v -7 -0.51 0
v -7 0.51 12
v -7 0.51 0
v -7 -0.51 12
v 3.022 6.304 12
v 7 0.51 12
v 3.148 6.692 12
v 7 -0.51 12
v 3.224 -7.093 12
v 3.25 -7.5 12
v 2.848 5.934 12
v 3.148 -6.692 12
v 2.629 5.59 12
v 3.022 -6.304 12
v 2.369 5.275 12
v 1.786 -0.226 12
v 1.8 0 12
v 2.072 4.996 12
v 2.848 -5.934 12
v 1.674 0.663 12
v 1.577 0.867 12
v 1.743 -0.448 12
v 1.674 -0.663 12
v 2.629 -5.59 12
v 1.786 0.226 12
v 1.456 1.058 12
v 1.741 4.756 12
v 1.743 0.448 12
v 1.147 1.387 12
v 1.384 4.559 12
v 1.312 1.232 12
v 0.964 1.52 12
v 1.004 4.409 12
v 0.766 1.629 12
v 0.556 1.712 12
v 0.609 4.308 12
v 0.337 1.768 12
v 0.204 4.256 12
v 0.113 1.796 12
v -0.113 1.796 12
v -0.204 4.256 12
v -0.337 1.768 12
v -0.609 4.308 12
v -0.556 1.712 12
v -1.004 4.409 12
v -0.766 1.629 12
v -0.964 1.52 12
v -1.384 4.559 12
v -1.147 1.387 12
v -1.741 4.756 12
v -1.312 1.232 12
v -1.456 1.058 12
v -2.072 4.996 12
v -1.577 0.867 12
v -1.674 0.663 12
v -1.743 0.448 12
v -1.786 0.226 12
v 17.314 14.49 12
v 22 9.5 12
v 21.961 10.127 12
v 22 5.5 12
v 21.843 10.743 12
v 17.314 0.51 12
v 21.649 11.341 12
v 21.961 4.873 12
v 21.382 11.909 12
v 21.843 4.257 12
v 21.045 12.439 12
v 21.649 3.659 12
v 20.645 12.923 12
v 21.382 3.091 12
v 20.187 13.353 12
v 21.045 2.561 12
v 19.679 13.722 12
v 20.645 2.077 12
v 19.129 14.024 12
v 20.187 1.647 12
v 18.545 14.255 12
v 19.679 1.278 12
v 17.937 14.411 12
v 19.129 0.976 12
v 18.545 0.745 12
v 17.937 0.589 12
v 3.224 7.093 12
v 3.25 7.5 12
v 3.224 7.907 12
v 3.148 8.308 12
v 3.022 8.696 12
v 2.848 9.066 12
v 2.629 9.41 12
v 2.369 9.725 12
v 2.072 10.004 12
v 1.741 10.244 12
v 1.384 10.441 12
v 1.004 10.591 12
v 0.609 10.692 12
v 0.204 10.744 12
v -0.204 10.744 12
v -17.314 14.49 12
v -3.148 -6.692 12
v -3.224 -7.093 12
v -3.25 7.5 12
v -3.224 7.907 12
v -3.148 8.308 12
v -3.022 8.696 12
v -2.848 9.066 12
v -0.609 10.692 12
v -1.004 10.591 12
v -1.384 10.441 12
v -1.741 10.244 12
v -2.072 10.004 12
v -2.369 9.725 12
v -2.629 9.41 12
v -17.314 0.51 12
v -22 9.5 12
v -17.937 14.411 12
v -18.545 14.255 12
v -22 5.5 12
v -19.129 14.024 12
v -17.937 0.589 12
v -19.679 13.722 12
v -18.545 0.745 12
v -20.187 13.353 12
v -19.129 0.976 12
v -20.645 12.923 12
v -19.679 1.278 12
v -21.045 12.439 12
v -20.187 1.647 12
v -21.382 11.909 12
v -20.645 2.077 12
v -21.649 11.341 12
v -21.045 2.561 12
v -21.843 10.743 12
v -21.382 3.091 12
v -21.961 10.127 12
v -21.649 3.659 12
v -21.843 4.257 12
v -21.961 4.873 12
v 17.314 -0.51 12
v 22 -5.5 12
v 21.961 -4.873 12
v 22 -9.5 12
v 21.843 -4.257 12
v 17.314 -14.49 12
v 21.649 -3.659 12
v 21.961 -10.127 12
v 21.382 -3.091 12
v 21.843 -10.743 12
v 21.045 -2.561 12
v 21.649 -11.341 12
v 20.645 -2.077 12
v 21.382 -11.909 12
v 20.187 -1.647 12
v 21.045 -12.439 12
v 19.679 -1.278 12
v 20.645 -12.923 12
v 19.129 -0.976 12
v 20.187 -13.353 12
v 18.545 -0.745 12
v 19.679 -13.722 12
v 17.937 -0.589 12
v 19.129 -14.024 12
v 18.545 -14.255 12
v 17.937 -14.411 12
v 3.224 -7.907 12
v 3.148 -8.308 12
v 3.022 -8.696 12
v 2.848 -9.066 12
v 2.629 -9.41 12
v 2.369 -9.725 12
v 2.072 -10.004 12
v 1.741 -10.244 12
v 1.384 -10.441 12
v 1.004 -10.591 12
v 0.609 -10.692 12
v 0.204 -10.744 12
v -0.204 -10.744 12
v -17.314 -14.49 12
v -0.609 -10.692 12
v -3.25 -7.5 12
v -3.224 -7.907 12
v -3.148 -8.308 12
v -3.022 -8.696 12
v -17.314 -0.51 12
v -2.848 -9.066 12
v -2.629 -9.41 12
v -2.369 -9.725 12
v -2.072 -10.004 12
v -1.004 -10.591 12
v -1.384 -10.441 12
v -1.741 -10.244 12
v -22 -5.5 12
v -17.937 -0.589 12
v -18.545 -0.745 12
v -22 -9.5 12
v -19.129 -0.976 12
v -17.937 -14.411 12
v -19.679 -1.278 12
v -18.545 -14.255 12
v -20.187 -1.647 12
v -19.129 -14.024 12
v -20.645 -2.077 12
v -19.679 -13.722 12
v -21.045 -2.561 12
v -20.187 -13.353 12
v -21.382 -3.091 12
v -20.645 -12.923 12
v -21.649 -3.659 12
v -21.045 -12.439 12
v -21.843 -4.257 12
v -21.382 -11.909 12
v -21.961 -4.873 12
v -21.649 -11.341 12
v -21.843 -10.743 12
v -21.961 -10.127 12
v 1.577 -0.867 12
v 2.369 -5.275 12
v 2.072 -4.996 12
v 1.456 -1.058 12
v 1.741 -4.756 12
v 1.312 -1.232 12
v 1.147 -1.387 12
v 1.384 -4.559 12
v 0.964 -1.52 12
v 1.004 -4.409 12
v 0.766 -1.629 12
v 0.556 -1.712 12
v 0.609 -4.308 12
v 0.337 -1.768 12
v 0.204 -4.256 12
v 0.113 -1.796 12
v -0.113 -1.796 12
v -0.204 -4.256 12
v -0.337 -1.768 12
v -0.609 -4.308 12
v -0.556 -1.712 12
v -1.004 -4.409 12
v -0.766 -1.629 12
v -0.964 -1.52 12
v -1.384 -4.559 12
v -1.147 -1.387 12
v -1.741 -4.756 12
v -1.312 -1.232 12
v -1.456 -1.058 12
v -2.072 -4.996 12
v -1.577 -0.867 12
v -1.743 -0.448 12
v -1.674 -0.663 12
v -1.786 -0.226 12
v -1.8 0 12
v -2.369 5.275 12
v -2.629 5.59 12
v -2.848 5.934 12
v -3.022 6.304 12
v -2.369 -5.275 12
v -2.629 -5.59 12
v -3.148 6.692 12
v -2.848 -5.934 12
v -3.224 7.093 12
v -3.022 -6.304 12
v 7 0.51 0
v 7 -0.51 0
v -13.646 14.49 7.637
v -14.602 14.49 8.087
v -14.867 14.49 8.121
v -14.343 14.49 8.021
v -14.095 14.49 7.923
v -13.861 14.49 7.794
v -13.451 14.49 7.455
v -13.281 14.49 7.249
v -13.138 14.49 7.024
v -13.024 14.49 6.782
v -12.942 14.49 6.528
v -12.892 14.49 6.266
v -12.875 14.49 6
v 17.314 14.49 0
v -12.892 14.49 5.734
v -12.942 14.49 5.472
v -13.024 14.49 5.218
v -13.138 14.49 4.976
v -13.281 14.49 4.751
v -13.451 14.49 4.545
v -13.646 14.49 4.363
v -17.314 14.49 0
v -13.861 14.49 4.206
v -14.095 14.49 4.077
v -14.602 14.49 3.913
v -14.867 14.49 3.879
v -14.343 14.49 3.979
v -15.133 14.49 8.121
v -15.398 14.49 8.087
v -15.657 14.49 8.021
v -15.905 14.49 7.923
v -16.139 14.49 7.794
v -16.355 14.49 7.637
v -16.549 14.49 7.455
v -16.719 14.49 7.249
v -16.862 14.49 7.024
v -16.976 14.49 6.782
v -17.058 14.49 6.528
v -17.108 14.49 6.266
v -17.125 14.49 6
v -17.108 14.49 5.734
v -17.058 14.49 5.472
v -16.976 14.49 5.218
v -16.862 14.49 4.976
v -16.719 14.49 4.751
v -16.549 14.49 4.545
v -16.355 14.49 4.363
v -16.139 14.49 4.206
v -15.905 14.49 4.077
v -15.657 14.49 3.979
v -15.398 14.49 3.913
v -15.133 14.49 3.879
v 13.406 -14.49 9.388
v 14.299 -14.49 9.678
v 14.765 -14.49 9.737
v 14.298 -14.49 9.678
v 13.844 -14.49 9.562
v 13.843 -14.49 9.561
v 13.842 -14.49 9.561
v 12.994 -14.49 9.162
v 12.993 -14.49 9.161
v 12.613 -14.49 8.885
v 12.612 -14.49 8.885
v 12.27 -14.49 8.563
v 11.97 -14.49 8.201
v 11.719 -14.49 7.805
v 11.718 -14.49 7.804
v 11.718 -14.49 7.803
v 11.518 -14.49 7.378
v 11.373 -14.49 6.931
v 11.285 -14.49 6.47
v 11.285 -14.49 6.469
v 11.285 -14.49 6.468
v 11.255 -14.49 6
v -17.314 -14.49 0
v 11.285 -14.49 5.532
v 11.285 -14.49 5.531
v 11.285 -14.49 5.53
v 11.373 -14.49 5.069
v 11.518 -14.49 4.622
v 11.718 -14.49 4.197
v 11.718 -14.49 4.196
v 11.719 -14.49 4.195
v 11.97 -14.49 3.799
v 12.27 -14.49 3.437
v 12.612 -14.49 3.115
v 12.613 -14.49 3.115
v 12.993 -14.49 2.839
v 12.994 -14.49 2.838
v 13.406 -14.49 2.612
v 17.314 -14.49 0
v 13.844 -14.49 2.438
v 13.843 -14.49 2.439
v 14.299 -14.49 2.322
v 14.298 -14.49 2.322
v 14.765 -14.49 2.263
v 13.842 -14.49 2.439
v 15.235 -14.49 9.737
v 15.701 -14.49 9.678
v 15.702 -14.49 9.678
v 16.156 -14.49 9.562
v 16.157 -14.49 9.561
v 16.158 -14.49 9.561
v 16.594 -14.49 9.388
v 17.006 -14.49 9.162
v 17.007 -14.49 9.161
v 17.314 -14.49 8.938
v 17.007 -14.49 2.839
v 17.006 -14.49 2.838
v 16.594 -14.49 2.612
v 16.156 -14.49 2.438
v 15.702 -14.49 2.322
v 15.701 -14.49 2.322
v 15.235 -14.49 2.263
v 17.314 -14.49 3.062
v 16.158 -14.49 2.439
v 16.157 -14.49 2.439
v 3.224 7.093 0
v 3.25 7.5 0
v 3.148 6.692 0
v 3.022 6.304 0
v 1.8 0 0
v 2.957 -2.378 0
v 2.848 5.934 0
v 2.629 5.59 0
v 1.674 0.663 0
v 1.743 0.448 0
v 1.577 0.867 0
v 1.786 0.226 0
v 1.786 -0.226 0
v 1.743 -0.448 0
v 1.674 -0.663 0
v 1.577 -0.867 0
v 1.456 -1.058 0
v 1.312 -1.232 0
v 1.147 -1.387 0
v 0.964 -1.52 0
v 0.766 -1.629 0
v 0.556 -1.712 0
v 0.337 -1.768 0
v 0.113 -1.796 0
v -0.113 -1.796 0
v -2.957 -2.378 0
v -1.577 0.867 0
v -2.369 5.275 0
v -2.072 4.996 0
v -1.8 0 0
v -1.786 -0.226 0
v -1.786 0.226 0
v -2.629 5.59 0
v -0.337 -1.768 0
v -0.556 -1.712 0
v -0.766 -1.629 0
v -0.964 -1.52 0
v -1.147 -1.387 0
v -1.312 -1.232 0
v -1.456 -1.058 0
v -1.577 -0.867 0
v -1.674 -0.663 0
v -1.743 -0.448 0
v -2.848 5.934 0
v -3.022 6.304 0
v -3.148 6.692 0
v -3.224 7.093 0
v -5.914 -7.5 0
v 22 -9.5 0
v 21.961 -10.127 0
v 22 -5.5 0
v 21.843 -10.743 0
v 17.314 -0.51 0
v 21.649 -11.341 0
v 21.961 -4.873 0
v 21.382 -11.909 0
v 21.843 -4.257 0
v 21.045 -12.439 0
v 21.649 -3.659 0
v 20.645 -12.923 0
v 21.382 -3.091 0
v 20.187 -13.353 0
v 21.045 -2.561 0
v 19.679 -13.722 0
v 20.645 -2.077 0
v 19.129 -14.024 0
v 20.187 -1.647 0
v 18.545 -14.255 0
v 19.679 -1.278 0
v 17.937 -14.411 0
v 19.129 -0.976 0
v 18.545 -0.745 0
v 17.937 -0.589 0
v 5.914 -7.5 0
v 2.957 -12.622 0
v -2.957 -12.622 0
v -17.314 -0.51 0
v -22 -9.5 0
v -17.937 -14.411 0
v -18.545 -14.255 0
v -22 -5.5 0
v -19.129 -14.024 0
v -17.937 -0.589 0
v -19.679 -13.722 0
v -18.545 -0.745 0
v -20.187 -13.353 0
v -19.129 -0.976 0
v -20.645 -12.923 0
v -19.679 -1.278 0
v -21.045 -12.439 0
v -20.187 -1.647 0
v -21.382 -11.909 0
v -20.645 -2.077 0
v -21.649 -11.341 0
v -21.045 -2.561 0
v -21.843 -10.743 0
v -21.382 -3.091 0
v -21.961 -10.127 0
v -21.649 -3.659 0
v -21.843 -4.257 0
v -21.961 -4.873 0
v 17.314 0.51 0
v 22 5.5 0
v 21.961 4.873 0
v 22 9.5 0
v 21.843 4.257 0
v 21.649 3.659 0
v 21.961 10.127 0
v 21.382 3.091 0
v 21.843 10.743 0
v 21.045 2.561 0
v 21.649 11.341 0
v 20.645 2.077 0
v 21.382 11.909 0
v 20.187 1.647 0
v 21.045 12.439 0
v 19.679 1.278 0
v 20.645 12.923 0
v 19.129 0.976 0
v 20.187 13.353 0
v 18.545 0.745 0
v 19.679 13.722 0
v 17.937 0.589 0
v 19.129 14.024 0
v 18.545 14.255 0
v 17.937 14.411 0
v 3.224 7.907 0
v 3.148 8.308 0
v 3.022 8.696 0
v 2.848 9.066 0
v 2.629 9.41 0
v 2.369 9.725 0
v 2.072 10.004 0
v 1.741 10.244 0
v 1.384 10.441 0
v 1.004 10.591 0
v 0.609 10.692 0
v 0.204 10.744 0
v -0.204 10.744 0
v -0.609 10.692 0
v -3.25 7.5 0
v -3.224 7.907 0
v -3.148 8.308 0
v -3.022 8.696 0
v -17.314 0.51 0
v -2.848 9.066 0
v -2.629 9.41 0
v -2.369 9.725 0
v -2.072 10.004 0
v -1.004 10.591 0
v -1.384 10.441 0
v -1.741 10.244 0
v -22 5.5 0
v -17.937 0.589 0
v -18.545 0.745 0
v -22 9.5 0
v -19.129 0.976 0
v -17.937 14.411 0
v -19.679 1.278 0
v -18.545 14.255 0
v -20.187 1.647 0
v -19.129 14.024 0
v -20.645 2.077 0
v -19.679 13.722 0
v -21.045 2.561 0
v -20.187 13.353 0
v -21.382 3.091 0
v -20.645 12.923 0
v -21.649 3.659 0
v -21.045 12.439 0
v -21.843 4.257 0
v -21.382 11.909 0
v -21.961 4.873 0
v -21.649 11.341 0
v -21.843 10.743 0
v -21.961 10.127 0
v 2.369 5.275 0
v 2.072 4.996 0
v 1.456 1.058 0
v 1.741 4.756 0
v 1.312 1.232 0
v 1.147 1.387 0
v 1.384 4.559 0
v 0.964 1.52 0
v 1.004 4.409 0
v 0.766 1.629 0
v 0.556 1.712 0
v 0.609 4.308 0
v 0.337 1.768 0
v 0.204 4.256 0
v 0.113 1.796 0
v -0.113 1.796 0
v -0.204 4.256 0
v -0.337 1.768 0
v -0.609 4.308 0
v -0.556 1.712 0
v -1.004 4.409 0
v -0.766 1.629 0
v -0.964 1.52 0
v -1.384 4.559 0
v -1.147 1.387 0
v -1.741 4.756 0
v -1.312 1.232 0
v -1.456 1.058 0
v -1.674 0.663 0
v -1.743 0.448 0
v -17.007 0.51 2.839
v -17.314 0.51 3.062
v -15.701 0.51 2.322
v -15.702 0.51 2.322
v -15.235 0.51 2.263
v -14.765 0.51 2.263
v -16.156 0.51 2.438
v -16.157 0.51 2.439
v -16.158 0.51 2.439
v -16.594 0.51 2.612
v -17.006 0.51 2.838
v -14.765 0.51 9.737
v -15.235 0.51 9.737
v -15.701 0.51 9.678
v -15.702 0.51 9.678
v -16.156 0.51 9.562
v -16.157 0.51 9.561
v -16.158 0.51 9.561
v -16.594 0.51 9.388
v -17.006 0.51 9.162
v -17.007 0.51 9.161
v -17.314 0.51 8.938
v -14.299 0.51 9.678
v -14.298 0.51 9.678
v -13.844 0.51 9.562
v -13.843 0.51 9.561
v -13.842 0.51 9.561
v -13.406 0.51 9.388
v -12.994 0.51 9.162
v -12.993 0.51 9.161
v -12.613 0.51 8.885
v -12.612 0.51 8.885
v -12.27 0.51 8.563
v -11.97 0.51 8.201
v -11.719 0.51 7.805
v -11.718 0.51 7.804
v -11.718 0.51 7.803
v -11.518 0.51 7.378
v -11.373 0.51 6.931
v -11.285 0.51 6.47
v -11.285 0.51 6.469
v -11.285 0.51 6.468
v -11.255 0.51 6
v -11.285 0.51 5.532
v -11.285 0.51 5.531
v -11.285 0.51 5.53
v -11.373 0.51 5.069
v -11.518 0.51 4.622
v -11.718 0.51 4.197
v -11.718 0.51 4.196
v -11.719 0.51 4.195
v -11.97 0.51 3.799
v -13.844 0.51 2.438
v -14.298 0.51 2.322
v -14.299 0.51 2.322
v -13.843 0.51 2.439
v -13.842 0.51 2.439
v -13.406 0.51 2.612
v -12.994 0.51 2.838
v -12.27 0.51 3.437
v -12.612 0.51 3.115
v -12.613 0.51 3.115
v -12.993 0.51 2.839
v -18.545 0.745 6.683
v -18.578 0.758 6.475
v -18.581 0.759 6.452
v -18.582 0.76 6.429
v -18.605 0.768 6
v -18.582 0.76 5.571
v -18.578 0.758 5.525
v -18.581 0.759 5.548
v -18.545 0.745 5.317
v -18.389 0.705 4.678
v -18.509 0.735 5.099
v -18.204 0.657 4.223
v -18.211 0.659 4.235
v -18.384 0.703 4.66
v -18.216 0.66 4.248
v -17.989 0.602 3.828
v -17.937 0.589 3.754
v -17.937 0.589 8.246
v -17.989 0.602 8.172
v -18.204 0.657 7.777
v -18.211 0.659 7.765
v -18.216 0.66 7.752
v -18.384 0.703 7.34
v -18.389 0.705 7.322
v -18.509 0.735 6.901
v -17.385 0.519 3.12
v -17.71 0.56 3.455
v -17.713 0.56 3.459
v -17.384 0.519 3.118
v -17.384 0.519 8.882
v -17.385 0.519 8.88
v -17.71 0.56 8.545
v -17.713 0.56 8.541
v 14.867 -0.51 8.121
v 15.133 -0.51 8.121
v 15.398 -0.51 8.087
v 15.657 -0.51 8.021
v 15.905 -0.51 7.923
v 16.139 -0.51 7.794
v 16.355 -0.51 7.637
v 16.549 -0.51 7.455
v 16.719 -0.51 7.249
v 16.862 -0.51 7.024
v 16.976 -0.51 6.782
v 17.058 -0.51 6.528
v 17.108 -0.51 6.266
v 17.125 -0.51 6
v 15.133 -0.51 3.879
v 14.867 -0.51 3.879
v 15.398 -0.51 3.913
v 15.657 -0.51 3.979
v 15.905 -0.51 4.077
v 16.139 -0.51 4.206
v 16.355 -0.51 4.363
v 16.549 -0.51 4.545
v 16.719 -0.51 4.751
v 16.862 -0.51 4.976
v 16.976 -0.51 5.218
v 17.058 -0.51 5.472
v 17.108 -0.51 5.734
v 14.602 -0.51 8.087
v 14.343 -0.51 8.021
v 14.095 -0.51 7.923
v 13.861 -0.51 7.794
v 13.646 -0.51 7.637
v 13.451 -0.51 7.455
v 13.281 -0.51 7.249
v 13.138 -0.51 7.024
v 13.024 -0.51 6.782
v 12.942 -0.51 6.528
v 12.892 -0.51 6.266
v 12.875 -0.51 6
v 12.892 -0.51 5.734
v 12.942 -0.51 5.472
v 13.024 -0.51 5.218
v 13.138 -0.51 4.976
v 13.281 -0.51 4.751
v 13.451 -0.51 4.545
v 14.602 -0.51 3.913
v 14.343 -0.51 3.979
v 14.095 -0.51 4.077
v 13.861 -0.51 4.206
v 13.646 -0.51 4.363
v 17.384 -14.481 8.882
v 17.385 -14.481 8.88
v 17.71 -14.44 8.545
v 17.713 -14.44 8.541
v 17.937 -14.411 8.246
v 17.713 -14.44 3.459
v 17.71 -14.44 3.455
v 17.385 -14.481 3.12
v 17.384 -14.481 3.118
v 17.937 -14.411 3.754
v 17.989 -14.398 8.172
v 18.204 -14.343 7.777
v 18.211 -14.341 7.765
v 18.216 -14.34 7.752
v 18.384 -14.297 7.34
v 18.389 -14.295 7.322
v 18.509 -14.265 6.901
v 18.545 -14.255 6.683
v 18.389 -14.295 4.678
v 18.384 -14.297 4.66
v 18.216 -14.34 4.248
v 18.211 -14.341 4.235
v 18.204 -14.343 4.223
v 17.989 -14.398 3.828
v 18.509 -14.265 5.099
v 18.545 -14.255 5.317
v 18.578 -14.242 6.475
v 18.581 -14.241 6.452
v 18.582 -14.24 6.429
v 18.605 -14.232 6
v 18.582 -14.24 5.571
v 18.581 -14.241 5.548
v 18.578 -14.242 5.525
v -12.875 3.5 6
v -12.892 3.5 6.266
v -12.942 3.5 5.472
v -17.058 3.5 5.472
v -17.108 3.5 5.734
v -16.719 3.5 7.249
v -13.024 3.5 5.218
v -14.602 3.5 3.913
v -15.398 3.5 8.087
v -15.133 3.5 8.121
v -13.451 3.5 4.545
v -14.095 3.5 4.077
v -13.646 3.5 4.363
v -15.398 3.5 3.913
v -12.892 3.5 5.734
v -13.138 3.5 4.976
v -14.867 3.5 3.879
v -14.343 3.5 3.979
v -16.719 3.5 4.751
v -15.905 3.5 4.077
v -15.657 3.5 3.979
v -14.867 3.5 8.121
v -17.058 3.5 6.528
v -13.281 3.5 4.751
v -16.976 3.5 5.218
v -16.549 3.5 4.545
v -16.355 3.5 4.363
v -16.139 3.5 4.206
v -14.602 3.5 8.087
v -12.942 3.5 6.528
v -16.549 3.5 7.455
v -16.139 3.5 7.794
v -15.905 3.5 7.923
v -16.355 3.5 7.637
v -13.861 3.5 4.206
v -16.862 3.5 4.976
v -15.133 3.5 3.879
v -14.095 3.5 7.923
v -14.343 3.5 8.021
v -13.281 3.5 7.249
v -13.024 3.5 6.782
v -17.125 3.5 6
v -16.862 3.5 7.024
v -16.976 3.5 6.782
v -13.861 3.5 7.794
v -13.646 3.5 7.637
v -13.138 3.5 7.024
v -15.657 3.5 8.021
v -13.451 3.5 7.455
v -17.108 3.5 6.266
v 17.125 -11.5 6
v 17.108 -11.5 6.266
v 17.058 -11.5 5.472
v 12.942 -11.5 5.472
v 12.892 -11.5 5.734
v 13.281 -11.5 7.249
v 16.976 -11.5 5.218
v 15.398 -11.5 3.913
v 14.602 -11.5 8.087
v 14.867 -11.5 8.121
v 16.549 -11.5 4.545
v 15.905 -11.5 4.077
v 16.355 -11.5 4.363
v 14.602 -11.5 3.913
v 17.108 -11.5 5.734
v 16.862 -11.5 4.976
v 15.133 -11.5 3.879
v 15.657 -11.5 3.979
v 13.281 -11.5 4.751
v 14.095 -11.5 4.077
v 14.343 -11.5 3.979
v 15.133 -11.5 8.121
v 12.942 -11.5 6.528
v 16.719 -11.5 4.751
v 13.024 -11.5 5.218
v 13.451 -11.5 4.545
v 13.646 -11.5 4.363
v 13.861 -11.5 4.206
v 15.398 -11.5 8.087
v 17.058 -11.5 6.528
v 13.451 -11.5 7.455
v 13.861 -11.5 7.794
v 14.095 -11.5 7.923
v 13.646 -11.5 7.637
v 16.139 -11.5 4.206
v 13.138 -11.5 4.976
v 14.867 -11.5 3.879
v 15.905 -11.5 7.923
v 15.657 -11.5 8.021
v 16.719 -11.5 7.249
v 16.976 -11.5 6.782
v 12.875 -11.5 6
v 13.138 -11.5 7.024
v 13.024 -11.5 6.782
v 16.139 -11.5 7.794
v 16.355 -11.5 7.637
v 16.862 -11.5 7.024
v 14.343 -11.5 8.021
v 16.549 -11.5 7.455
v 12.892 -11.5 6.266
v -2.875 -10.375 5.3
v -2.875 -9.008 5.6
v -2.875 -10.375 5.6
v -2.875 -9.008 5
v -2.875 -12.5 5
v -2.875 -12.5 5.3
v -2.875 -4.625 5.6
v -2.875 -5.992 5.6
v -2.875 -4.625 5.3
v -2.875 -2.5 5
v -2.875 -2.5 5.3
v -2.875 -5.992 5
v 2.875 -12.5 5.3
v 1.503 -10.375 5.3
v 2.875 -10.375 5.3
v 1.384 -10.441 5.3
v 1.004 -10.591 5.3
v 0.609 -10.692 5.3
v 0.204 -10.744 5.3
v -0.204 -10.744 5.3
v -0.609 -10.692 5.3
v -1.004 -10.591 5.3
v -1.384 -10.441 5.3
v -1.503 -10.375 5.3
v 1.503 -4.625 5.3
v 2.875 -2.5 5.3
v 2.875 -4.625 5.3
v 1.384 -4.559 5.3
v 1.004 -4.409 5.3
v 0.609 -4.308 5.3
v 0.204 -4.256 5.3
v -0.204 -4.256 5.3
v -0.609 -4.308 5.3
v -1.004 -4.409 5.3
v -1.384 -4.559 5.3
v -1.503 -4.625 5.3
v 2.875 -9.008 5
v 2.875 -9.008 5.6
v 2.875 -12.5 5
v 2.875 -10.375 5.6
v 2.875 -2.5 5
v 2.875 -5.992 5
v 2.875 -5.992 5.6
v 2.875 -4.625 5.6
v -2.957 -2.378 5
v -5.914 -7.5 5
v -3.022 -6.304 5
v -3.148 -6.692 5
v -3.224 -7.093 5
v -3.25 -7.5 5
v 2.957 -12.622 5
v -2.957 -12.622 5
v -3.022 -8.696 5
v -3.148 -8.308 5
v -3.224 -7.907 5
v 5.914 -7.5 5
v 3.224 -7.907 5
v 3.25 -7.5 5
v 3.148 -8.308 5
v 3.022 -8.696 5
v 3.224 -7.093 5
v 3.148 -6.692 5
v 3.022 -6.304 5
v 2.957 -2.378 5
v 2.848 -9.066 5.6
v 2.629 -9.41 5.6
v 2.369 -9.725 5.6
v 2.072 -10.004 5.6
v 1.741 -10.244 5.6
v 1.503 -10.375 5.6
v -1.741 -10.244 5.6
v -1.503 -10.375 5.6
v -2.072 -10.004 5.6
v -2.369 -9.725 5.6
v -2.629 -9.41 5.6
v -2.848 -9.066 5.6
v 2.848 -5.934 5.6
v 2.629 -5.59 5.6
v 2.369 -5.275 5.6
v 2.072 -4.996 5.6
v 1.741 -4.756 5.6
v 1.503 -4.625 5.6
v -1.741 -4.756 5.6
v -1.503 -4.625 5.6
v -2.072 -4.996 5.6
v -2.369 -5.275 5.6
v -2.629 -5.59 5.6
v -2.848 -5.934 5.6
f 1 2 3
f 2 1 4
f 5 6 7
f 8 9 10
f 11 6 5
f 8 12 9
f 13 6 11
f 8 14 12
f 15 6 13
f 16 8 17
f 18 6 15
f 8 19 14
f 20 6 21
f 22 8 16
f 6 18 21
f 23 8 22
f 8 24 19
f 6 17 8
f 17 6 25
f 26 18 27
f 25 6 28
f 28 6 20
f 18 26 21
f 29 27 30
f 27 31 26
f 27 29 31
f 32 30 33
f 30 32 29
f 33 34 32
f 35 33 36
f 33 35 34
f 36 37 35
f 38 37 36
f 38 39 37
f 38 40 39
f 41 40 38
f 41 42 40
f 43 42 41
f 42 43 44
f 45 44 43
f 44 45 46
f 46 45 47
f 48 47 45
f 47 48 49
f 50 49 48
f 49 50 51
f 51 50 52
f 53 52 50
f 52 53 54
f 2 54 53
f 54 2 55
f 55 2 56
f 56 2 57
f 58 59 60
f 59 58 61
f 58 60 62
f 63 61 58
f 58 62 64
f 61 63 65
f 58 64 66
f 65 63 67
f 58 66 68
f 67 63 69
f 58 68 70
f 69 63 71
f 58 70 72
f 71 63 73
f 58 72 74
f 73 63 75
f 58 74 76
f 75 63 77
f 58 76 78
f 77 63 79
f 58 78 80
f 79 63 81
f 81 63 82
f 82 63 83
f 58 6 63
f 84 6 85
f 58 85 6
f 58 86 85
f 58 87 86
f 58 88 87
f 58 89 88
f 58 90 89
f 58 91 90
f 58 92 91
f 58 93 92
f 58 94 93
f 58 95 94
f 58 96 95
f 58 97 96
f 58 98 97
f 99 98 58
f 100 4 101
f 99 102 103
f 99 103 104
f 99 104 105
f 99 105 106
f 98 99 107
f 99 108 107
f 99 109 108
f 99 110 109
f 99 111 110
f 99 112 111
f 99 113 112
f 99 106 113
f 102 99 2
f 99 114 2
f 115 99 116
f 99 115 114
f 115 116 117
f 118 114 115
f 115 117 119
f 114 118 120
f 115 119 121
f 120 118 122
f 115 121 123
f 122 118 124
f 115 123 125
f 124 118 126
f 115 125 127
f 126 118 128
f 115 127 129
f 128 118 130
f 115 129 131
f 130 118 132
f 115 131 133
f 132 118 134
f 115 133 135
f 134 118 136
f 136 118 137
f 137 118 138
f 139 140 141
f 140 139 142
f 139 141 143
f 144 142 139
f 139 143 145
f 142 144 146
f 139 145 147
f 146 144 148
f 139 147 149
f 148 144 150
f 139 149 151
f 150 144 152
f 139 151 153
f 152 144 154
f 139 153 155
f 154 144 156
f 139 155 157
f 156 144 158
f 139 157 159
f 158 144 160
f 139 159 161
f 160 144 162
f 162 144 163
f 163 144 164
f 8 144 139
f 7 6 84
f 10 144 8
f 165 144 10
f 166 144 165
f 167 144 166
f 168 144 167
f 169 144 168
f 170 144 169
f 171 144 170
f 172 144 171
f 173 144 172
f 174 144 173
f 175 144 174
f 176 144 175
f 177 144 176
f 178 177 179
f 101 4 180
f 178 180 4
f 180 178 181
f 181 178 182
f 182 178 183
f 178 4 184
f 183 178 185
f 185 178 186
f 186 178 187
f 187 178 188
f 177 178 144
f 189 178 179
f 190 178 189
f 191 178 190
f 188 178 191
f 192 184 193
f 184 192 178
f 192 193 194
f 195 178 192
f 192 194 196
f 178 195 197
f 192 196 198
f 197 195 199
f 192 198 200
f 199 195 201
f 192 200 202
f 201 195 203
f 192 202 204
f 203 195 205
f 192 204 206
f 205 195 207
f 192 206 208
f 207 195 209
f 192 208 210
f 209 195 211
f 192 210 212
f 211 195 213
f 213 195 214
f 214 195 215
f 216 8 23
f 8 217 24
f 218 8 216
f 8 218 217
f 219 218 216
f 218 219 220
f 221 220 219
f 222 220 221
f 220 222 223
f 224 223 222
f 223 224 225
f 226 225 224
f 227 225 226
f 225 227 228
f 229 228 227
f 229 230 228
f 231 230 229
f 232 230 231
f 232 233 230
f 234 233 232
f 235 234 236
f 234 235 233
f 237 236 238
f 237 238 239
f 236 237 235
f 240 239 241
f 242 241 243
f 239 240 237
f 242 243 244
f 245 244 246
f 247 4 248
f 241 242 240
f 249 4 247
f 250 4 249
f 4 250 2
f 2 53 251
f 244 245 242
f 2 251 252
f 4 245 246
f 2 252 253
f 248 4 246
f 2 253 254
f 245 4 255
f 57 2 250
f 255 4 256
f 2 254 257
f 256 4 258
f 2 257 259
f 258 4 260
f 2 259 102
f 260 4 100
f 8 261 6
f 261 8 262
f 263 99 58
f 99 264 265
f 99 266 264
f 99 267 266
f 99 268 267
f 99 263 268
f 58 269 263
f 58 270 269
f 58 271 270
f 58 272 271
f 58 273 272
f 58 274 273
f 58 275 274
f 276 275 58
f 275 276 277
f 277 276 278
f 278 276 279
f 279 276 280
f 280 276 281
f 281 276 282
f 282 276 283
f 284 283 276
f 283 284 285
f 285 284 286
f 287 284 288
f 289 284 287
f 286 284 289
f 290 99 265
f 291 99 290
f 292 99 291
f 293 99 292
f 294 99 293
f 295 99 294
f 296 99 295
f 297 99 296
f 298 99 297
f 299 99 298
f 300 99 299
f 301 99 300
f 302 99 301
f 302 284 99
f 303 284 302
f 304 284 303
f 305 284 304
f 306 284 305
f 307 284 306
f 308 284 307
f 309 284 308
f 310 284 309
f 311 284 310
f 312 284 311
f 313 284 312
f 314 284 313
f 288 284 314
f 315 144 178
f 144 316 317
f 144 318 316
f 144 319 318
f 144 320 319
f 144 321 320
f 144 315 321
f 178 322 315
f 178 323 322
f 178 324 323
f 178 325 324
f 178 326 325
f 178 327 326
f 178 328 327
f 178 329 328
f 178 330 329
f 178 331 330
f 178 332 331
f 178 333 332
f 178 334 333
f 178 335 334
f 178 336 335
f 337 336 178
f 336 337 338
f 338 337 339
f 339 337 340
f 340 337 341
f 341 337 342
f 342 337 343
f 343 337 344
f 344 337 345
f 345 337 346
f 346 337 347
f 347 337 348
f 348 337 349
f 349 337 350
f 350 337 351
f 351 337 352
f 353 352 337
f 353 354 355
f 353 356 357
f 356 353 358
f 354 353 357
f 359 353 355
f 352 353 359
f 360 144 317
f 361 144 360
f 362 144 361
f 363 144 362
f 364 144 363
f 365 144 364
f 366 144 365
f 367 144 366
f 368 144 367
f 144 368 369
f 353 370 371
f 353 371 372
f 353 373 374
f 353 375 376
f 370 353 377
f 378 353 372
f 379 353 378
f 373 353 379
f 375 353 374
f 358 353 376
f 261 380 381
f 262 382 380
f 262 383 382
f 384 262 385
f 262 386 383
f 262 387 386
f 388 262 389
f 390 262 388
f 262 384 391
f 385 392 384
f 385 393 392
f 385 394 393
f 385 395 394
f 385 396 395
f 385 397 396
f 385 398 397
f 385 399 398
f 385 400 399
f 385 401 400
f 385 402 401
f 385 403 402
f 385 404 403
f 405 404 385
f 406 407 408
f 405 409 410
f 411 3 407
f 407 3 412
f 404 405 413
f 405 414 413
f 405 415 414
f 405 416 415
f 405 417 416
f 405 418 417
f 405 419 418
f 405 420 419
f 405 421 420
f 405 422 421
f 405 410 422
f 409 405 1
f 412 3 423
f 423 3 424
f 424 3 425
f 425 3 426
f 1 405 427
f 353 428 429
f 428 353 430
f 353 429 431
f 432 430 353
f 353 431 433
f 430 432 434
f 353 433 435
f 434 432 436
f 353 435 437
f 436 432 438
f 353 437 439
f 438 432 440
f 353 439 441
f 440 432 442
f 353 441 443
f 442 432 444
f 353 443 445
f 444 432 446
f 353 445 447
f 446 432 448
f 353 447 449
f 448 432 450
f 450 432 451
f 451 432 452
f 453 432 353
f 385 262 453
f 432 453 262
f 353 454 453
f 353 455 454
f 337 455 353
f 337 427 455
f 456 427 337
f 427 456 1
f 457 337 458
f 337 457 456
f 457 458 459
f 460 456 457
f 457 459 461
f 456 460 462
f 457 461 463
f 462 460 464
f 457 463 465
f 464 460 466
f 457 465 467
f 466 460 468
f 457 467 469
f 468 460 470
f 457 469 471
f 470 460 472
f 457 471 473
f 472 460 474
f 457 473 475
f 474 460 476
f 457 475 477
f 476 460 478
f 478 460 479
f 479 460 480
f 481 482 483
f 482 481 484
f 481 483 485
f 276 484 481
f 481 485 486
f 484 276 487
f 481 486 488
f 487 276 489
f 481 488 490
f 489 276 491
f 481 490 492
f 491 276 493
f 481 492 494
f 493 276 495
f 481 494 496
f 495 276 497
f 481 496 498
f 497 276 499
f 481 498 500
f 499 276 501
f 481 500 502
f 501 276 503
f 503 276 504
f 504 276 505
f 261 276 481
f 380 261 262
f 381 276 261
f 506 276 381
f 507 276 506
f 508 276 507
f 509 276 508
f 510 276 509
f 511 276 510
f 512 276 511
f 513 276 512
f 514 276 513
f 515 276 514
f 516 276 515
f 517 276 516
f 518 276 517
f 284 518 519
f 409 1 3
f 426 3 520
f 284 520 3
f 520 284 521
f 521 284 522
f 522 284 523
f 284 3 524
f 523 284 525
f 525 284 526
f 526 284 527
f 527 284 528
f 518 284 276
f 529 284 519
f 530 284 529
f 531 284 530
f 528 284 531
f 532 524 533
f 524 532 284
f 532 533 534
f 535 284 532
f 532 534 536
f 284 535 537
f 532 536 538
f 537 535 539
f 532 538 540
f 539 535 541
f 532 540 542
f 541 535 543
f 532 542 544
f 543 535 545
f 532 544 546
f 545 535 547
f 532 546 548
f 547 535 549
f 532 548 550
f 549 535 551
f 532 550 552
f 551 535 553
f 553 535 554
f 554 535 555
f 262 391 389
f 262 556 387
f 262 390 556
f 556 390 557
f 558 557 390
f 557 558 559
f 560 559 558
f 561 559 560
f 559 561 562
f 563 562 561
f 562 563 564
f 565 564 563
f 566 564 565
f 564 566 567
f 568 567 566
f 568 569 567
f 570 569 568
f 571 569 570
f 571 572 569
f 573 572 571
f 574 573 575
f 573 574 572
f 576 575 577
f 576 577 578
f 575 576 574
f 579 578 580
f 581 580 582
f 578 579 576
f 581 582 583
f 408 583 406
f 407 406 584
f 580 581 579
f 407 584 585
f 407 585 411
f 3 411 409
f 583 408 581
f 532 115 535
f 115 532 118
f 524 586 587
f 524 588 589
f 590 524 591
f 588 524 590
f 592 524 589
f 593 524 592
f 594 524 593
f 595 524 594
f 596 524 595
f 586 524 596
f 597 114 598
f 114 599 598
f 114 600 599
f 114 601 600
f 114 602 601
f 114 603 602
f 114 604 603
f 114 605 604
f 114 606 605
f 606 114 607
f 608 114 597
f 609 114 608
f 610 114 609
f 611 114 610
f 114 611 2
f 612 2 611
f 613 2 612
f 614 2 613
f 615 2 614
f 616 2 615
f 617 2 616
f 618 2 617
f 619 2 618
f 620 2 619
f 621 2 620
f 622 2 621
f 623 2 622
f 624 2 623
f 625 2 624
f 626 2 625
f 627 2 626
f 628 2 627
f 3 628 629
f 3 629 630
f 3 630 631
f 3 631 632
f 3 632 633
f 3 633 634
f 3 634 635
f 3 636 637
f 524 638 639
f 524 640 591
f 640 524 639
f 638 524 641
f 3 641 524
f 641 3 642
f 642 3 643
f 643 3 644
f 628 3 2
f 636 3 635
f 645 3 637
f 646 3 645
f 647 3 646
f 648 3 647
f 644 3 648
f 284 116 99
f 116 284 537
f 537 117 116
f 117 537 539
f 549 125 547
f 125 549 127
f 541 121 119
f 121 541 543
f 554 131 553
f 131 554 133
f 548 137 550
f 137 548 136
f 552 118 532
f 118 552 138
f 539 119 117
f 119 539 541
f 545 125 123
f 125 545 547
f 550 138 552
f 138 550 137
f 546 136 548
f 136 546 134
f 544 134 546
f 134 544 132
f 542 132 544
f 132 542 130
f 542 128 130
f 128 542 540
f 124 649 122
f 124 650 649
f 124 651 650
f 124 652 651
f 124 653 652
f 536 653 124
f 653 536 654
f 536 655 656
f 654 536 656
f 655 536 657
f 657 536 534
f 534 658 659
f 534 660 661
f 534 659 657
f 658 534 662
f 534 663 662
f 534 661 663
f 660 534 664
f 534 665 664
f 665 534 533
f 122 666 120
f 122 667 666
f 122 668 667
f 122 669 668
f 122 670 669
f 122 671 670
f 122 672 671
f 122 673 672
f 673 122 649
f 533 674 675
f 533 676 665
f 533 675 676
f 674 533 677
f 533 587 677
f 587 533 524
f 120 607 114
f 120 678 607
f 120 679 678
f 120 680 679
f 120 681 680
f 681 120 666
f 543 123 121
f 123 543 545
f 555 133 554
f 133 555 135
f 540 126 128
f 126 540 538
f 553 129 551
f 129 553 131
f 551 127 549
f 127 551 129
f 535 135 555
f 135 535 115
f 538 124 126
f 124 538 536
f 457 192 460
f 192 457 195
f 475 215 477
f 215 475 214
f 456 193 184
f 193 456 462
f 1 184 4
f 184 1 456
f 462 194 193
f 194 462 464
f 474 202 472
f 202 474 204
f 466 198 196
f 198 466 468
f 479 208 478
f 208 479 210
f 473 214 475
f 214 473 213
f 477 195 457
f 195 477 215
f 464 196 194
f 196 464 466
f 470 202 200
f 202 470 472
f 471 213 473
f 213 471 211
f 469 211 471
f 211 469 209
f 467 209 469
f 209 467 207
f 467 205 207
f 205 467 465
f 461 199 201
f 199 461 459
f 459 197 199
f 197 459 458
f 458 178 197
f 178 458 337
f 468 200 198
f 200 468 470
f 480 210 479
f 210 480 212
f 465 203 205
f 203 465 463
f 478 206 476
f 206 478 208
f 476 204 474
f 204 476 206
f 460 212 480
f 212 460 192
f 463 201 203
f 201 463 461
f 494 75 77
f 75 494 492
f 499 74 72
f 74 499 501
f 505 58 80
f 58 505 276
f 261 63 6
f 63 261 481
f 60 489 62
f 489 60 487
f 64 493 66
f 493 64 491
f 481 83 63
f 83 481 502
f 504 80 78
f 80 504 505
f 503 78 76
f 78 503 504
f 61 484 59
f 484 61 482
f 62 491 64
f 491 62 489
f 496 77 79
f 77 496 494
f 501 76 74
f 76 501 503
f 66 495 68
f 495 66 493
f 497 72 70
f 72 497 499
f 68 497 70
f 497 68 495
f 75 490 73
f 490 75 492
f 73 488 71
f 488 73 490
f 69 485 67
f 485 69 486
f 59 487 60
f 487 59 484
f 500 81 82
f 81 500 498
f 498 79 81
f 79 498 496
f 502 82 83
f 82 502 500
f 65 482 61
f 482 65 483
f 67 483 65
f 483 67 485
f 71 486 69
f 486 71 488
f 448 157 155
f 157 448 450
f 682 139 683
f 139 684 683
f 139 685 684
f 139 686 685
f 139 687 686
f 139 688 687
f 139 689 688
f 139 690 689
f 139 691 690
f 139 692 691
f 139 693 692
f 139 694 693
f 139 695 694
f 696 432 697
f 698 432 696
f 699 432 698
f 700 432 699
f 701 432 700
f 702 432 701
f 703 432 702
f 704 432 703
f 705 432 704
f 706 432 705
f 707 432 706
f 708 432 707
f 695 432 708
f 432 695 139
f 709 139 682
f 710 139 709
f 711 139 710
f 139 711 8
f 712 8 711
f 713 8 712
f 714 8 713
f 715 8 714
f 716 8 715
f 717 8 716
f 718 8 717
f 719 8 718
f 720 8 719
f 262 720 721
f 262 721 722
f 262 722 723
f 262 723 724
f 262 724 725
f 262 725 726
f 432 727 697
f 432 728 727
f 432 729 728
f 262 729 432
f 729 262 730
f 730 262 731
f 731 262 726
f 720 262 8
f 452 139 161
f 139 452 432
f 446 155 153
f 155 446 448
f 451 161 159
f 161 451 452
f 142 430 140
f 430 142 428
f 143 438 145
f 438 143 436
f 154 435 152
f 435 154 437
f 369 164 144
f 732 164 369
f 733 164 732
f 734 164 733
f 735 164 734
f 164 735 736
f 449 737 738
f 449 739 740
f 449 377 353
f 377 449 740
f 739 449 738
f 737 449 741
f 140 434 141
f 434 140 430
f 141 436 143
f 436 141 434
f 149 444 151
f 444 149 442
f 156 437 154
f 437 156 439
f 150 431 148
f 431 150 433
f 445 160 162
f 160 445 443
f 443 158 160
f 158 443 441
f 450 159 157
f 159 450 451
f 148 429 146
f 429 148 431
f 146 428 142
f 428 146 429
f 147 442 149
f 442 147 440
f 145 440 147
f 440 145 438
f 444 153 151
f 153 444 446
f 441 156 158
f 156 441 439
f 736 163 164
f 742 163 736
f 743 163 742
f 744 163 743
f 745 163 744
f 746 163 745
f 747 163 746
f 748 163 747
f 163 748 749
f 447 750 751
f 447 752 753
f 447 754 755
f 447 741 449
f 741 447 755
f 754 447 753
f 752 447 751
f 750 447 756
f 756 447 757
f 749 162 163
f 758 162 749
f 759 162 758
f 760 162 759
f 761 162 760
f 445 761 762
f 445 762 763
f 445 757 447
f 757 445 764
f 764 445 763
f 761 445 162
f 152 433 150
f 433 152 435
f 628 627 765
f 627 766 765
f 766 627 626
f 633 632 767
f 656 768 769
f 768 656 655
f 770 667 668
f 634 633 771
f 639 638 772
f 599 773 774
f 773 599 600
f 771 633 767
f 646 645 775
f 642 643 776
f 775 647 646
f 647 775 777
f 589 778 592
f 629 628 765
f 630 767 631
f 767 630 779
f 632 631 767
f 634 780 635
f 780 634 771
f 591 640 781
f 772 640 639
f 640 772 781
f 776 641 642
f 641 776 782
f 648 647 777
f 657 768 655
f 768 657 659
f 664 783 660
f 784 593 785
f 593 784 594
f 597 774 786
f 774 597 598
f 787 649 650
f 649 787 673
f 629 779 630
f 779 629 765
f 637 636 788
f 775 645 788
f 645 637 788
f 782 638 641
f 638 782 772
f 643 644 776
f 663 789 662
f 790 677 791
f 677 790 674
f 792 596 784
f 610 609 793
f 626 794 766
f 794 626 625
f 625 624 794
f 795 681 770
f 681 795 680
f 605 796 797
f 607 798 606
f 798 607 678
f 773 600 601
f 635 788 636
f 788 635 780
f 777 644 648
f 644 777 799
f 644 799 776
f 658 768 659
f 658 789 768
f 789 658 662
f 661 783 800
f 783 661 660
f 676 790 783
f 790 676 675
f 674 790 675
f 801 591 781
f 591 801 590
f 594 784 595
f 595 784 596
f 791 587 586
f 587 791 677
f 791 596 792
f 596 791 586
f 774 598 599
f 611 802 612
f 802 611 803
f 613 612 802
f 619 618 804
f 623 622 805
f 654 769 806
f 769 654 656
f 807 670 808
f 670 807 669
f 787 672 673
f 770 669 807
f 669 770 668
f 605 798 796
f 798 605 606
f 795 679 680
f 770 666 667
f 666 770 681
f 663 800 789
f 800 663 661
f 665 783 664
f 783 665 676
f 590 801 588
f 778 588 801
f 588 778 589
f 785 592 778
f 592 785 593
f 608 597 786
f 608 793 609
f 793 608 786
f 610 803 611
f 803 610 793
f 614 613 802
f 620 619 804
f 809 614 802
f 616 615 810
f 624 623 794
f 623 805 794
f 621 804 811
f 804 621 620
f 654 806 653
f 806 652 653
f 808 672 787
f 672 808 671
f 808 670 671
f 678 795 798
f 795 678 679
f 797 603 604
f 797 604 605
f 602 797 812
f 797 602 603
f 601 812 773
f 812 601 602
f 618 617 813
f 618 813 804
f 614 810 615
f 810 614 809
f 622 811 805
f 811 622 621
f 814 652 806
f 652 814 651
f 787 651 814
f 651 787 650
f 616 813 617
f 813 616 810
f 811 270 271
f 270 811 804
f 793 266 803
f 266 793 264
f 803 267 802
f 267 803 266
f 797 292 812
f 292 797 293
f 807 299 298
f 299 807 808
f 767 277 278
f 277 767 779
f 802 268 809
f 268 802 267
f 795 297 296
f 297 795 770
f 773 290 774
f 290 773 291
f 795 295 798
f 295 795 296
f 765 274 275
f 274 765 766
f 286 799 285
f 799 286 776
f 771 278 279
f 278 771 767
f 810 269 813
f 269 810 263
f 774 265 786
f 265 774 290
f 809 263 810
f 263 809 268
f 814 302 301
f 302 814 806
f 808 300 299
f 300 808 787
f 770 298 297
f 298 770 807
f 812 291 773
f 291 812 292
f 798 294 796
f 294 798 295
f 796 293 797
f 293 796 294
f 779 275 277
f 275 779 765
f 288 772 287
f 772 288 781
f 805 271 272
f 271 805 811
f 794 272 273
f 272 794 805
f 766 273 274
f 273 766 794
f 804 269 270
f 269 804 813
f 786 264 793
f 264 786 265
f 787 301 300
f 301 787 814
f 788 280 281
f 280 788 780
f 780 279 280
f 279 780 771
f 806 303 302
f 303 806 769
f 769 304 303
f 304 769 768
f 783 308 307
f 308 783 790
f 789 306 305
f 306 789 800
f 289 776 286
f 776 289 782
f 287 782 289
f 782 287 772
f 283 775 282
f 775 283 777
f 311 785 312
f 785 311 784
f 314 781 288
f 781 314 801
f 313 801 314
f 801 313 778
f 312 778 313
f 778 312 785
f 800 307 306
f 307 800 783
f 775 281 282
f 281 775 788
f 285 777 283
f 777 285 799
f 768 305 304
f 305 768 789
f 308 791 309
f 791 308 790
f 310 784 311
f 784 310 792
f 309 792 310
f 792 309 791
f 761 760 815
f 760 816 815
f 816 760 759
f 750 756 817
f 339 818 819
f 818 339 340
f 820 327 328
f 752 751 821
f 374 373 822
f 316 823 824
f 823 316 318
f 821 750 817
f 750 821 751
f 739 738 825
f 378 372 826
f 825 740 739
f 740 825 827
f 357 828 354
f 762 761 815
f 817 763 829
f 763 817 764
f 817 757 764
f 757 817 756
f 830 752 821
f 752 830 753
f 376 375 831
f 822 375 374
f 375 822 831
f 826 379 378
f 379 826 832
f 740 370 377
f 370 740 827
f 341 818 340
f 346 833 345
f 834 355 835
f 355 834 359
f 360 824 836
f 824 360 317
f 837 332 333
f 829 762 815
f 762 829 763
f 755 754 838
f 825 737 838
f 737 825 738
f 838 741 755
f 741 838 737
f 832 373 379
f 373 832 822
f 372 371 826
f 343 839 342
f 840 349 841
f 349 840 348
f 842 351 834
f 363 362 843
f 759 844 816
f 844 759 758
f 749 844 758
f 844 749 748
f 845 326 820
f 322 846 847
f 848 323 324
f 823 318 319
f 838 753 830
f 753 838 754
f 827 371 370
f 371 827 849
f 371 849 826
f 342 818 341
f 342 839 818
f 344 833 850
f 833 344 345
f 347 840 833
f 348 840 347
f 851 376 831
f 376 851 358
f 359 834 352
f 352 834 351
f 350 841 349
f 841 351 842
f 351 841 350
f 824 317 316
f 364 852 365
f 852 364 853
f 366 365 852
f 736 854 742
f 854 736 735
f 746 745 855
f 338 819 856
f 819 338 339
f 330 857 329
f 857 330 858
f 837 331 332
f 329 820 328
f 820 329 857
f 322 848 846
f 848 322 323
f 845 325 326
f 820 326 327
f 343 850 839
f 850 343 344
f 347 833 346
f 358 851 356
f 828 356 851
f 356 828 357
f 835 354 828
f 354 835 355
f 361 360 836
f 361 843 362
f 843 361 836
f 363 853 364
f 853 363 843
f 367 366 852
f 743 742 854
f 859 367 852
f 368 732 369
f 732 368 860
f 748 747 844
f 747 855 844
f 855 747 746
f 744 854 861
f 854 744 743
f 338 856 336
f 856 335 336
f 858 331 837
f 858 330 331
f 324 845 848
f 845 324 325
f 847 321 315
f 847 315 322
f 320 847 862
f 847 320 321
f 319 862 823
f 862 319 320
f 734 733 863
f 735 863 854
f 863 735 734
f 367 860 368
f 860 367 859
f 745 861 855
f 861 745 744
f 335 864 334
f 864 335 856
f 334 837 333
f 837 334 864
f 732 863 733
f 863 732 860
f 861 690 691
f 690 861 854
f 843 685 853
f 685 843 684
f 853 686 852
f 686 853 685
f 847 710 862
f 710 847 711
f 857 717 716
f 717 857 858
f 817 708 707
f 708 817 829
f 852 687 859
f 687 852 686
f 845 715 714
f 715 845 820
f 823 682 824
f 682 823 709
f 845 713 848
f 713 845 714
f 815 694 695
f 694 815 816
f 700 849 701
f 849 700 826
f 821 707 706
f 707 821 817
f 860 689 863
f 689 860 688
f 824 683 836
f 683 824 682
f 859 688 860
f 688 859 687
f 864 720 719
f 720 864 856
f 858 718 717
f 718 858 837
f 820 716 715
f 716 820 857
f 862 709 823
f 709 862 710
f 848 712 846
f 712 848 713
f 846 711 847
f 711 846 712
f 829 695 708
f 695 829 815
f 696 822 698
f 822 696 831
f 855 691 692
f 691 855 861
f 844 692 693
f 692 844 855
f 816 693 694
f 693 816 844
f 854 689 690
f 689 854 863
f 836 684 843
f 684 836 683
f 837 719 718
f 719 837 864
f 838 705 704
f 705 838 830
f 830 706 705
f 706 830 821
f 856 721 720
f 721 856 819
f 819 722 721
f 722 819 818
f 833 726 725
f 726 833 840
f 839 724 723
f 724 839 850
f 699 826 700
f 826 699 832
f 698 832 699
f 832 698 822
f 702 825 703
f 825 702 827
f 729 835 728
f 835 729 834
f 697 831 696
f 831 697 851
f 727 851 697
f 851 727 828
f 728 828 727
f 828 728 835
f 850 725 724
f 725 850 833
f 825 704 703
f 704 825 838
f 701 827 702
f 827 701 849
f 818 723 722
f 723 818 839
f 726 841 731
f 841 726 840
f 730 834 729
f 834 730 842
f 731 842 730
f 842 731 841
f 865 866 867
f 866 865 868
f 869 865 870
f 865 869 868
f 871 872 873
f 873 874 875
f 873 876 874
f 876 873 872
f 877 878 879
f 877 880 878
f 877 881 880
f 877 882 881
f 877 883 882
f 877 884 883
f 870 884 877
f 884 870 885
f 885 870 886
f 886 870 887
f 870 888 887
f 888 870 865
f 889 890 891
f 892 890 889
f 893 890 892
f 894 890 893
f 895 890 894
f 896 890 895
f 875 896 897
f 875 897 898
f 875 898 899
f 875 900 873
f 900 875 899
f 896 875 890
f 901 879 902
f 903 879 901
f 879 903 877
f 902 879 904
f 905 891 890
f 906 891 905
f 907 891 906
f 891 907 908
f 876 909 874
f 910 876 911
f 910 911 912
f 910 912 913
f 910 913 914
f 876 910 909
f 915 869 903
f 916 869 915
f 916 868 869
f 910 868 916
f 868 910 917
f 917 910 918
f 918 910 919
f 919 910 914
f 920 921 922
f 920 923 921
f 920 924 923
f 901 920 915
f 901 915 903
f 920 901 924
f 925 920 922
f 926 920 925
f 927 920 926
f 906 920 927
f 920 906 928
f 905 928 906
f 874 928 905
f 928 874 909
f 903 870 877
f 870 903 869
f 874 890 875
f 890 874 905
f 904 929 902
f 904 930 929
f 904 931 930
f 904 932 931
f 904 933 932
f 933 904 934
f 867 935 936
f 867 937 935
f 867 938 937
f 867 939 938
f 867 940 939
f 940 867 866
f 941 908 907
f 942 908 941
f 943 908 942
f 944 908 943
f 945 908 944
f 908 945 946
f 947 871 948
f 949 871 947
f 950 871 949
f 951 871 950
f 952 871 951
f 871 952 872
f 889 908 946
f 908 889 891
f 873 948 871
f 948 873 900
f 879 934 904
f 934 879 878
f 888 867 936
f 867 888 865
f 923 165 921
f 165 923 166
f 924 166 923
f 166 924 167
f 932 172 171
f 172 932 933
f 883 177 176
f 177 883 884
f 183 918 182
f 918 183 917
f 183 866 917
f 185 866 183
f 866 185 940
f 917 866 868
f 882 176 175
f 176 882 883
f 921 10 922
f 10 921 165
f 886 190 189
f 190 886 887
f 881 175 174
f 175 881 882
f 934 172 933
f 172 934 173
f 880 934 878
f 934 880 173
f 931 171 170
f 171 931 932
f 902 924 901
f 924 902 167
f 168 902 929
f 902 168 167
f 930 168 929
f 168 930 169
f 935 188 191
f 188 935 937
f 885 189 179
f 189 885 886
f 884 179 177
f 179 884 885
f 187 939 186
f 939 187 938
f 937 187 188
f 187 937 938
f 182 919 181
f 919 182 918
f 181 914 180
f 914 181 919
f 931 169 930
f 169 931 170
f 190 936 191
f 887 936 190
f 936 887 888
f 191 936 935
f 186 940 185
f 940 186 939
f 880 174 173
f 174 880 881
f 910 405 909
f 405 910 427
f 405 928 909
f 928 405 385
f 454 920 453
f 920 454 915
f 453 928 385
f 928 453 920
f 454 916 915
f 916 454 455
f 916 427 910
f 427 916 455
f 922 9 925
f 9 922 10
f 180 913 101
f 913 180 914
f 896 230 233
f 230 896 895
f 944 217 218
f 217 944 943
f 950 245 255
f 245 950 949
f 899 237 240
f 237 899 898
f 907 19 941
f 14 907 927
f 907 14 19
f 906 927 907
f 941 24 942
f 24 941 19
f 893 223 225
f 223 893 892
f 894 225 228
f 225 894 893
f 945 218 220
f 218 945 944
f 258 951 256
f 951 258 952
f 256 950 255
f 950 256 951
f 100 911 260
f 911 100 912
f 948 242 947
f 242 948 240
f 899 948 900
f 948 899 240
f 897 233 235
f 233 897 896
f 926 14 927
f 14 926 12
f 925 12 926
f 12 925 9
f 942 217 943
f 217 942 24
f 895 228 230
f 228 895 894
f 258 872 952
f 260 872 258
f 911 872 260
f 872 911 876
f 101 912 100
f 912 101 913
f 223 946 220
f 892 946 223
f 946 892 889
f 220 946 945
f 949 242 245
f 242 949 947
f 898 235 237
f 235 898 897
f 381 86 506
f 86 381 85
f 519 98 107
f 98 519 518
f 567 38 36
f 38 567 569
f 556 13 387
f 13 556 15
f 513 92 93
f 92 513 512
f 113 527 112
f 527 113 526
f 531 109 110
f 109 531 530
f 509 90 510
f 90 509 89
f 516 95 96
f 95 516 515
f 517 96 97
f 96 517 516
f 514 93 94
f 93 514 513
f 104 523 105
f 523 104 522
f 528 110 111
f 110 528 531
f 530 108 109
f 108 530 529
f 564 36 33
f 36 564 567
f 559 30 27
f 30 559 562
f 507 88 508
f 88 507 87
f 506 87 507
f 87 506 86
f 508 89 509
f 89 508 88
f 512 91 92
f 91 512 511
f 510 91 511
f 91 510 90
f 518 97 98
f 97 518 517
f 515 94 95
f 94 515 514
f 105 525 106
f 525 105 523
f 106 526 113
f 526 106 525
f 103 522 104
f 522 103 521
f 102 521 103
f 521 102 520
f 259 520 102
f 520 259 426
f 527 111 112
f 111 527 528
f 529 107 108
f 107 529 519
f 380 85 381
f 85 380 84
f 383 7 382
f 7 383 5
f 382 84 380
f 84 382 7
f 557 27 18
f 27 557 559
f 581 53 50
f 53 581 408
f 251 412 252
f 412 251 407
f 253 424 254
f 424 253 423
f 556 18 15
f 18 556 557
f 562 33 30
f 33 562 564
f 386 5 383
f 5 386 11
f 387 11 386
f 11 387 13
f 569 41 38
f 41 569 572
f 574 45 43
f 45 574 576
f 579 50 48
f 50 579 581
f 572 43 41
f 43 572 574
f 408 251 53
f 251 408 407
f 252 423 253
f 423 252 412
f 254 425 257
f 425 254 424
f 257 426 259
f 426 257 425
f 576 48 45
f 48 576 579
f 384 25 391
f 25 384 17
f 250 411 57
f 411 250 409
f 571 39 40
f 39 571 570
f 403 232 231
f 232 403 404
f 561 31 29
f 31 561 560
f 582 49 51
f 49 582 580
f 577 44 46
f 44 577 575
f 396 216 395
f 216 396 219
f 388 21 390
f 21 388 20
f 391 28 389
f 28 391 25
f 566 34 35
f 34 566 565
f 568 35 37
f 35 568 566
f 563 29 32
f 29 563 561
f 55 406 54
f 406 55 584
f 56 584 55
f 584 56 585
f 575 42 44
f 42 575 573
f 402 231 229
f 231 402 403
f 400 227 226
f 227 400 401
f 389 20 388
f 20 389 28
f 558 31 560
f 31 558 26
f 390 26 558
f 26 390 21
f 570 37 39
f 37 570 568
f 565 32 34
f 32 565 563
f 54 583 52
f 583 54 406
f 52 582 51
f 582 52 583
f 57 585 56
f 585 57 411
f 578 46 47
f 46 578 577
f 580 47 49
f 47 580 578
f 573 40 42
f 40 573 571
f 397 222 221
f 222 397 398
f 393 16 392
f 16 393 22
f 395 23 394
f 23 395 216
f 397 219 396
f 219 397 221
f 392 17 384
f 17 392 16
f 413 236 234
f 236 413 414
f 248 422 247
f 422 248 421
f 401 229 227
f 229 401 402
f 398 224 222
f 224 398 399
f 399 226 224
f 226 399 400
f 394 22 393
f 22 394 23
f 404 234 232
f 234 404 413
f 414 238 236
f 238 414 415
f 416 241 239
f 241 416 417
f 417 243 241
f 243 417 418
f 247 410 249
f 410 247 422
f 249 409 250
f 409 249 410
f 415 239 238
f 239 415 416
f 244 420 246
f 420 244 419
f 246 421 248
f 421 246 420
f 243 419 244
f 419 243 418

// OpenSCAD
$fn = 50;


difference() {
	union() {
		hull() {
			translate(v = [-2.0000000000, 9.5000000000, 0]) {
				cylinder(h = 12, r = 5);
			}
			translate(v = [2.0000000000, 9.5000000000, 0]) {
				cylinder(h = 12, r = 5);
			}
			translate(v = [-2.0000000000, -9.5000000000, 0]) {
				cylinder(h = 12, r = 5);
			}
			translate(v = [2.0000000000, -9.5000000000, 0]) {
				cylinder(h = 12, r = 5);
			}
		}
		translate(v = [-7.5000000000, 7.5000000000, 0]) {
			hull() {
				translate(v = [-9.5000000000, 2.0000000000, 0]) {
					cylinder(h = 12, r = 5);
				}
				translate(v = [9.5000000000, 2.0000000000, 0]) {
					cylinder(h = 12, r = 5);
				}
				translate(v = [-9.5000000000, -2.0000000000, 0]) {
					cylinder(h = 12, r = 5);
				}
				translate(v = [9.5000000000, -2.0000000000, 0]) {
					cylinder(h = 12, r = 5);
				}
			}
		}
		translate(v = [-7.5000000000, -7.5000000000, 0]) {
			hull() {
				translate(v = [-9.5000000000, 2.0000000000, 0]) {
					cylinder(h = 12, r = 5);
				}
				translate(v = [9.5000000000, 2.0000000000, 0]) {
					cylinder(h = 12, r = 5);
				}
				translate(v = [-9.5000000000, -2.0000000000, 0]) {
					cylinder(h = 12, r = 5);
				}
				translate(v = [9.5000000000, -2.0000000000, 0]) {
					cylinder(h = 12, r = 5);
				}
			}
		}
		translate(v = [7.5000000000, 7.5000000000, 0]) {
			hull() {
				translate(v = [-9.5000000000, 2.0000000000, 0]) {
					cylinder(h = 12, r = 5);
				}
				translate(v = [9.5000000000, 2.0000000000, 0]) {
					cylinder(h = 12, r = 5);
				}
				translate(v = [-9.5000000000, -2.0000000000, 0]) {
					cylinder(h = 12, r = 5);
				}
				translate(v = [9.5000000000, -2.0000000000, 0]) {
					cylinder(h = 12, r = 5);
				}
			}
		}
		translate(v = [7.5000000000, -7.5000000000, 0]) {
			hull() {
				translate(v = [-9.5000000000, 2.0000000000, 0]) {
					cylinder(h = 12, r = 5);
				}
				translate(v = [9.5000000000, 2.0000000000, 0]) {
					cylinder(h = 12, r = 5);
				}
				translate(v = [-9.5000000000, -2.0000000000, 0]) {
					cylinder(h = 12, r = 5);
				}
				translate(v = [9.5000000000, -2.0000000000, 0]) {
					cylinder(h = 12, r = 5);
				}
			}
		}
	}
	union() {
		translate(v = [-15.0000000000, 0.5000000000, 6.0000000000]) {
			rotate(a = [90, 0, 0]) {
				difference() {
					union() {
						#translate(v = [0, 0, -14.0000000000]) {
							cylinder(h = 14, r = 2.0000000000);
						}
						#translate(v = [0, 0, -3]) {
							cylinder(h = 3, r1 = 2.1250000000, r2 = 3.7500000000);
						}
						#translate(v = [0, 0, -14.0000000000]) {
							cylinder(h = 14, r = 2.1250000000);
						}
						#translate(v = [0, 0, -14.0000000000]) {
							cylinder(h = 14, r = 2.0000000000);
						}
					}
					union();
				}
			}
		}
		translate(v = [15.0000000000, -14.5000000000, 6.0000000000]) {
			rotate(a = [90, 0, 0]) {
				difference() {
					union() {
						#translate(v = [0, 0, -14.0000000000]) {
							cylinder(h = 14, r = 2.0000000000);
						}
						#translate(v = [0, 0, -3]) {
							cylinder(h = 3, r1 = 2.1250000000, r2 = 3.7500000000);
						}
						#translate(v = [0, 0, -14.0000000000]) {
							cylinder(h = 14, r = 2.1250000000);
						}
						#translate(v = [0, 0, -14.0000000000]) {
							cylinder(h = 14, r = 2.0000000000);
						}
					}
					union();
				}
			}
		}
		translate(v = [0.0000000000, -7.5000000000, 0]) {
			rotate(a = [0, 0, 0]) {
				difference() {
					union() {
						#translate(v = [-2.8750000000, -5.0000000000, -0.3000000000]) {
							cube(size = [5.7500000000, 10, 0.3000000000]);
						}
						#translate(v = [-2.8750000000, -2.8750000000, -0.6000000000]) {
							cube(size = [5.7500000000, 5.7500000000, 0.3000000000]);
						}
						#translate(v = [-2.8750000000, -5.0000000000, 5]) {
							cube(size = [5.7500000000, 10, 0.3000000000]);
						}
						#translate(v = [-2.8750000000, -2.8750000000, 5.3000000000]) {
							cube(size = [5.7500000000, 5.7500000000, 0.3000000000]);
						}
						#translate(v = [0, 0, -100.0000000000]) {
							cylinder(h = 200, r = 3.2500000000);
						}
						#linear_extrude(height = 5) {
							polygon(points = [[5.9142500000, 0.0000000000], [2.9571250000, 5.1218907443], [-2.9571250000, 5.1218907443], [-5.9142500000, 0.0000000000], [-2.9571250000, -5.1218907443], [2.9571250000, -5.1218907443]]);
						}
						#translate(v = [-2.8750000000, -5.0000000000, -0.3000000000]) {
							cube(size = [5.7500000000, 10, 0.3000000000]);
						}
						#translate(v = [-2.8750000000, -2.8750000000, -0.6000000000]) {
							cube(size = [5.7500000000, 5.7500000000, 0.3000000000]);
						}
						#translate(v = [-2.8750000000, -5.0000000000, 5]) {
							cube(size = [5.7500000000, 10, 0.3000000000]);
						}
						#translate(v = [-2.8750000000, -2.8750000000, 5.3000000000]) {
							cube(size = [5.7500000000, 5.7500000000, 0.3000000000]);
						}
						#translate(v = [0, 0, -100.0000000000]) {
							cylinder(h = 200, r = 3.2500000000);
						}
						#translate(v = [-2.8750000000, -5.0000000000, -0.3000000000]) {
							cube(size = [5.7500000000, 10, 0.3000000000]);
						}
						#translate(v = [-2.8750000000, -2.8750000000, -0.6000000000]) {
							cube(size = [5.7500000000, 5.7500000000, 0.3000000000]);
						}
						#translate(v = [-2.8750000000, -5.0000000000, 5]) {
							cube(size = [5.7500000000, 10, 0.3000000000]);
						}
						#translate(v = [-2.8750000000, -2.8750000000, 5.3000000000]) {
							cube(size = [5.7500000000, 5.7500000000, 0.3000000000]);
						}
						#translate(v = [0, 0, -100.0000000000]) {
							cylinder(h = 200, r = 3.2500000000);
						}
					}
					union();
				}
			}
		}
		translate(v = [0.0000000000, -7.5000000000, 0]) {
			translate(v = [0, 0, -100]) {
				cylinder(h = 200, r = 3.2500000000);
			}
		}
		translate(v = [0.0000000000, 7.5000000000, 0]) {
			translate(v = [0, 0, -100]) {
				cylinder(h = 200, r = 3.2500000000);
			}
		}
		translate(v = [0.0000000000, -7.5000000000, 0]) {
			translate(v = [0, 0, -100]) {
				cylinder(h = 200, r = 1.8000000000);
			}
		}
		translate(v = [0, 0, -100]) {
			cylinder(h = 200, r = 1.8000000000);
		}
		translate(v = [0.0000000000, 7.5000000000, 0]) {
			translate(v = [0, 0, -100]) {
				cylinder(h = 200, r = 1.8000000000);
			}
		}
	}
}
